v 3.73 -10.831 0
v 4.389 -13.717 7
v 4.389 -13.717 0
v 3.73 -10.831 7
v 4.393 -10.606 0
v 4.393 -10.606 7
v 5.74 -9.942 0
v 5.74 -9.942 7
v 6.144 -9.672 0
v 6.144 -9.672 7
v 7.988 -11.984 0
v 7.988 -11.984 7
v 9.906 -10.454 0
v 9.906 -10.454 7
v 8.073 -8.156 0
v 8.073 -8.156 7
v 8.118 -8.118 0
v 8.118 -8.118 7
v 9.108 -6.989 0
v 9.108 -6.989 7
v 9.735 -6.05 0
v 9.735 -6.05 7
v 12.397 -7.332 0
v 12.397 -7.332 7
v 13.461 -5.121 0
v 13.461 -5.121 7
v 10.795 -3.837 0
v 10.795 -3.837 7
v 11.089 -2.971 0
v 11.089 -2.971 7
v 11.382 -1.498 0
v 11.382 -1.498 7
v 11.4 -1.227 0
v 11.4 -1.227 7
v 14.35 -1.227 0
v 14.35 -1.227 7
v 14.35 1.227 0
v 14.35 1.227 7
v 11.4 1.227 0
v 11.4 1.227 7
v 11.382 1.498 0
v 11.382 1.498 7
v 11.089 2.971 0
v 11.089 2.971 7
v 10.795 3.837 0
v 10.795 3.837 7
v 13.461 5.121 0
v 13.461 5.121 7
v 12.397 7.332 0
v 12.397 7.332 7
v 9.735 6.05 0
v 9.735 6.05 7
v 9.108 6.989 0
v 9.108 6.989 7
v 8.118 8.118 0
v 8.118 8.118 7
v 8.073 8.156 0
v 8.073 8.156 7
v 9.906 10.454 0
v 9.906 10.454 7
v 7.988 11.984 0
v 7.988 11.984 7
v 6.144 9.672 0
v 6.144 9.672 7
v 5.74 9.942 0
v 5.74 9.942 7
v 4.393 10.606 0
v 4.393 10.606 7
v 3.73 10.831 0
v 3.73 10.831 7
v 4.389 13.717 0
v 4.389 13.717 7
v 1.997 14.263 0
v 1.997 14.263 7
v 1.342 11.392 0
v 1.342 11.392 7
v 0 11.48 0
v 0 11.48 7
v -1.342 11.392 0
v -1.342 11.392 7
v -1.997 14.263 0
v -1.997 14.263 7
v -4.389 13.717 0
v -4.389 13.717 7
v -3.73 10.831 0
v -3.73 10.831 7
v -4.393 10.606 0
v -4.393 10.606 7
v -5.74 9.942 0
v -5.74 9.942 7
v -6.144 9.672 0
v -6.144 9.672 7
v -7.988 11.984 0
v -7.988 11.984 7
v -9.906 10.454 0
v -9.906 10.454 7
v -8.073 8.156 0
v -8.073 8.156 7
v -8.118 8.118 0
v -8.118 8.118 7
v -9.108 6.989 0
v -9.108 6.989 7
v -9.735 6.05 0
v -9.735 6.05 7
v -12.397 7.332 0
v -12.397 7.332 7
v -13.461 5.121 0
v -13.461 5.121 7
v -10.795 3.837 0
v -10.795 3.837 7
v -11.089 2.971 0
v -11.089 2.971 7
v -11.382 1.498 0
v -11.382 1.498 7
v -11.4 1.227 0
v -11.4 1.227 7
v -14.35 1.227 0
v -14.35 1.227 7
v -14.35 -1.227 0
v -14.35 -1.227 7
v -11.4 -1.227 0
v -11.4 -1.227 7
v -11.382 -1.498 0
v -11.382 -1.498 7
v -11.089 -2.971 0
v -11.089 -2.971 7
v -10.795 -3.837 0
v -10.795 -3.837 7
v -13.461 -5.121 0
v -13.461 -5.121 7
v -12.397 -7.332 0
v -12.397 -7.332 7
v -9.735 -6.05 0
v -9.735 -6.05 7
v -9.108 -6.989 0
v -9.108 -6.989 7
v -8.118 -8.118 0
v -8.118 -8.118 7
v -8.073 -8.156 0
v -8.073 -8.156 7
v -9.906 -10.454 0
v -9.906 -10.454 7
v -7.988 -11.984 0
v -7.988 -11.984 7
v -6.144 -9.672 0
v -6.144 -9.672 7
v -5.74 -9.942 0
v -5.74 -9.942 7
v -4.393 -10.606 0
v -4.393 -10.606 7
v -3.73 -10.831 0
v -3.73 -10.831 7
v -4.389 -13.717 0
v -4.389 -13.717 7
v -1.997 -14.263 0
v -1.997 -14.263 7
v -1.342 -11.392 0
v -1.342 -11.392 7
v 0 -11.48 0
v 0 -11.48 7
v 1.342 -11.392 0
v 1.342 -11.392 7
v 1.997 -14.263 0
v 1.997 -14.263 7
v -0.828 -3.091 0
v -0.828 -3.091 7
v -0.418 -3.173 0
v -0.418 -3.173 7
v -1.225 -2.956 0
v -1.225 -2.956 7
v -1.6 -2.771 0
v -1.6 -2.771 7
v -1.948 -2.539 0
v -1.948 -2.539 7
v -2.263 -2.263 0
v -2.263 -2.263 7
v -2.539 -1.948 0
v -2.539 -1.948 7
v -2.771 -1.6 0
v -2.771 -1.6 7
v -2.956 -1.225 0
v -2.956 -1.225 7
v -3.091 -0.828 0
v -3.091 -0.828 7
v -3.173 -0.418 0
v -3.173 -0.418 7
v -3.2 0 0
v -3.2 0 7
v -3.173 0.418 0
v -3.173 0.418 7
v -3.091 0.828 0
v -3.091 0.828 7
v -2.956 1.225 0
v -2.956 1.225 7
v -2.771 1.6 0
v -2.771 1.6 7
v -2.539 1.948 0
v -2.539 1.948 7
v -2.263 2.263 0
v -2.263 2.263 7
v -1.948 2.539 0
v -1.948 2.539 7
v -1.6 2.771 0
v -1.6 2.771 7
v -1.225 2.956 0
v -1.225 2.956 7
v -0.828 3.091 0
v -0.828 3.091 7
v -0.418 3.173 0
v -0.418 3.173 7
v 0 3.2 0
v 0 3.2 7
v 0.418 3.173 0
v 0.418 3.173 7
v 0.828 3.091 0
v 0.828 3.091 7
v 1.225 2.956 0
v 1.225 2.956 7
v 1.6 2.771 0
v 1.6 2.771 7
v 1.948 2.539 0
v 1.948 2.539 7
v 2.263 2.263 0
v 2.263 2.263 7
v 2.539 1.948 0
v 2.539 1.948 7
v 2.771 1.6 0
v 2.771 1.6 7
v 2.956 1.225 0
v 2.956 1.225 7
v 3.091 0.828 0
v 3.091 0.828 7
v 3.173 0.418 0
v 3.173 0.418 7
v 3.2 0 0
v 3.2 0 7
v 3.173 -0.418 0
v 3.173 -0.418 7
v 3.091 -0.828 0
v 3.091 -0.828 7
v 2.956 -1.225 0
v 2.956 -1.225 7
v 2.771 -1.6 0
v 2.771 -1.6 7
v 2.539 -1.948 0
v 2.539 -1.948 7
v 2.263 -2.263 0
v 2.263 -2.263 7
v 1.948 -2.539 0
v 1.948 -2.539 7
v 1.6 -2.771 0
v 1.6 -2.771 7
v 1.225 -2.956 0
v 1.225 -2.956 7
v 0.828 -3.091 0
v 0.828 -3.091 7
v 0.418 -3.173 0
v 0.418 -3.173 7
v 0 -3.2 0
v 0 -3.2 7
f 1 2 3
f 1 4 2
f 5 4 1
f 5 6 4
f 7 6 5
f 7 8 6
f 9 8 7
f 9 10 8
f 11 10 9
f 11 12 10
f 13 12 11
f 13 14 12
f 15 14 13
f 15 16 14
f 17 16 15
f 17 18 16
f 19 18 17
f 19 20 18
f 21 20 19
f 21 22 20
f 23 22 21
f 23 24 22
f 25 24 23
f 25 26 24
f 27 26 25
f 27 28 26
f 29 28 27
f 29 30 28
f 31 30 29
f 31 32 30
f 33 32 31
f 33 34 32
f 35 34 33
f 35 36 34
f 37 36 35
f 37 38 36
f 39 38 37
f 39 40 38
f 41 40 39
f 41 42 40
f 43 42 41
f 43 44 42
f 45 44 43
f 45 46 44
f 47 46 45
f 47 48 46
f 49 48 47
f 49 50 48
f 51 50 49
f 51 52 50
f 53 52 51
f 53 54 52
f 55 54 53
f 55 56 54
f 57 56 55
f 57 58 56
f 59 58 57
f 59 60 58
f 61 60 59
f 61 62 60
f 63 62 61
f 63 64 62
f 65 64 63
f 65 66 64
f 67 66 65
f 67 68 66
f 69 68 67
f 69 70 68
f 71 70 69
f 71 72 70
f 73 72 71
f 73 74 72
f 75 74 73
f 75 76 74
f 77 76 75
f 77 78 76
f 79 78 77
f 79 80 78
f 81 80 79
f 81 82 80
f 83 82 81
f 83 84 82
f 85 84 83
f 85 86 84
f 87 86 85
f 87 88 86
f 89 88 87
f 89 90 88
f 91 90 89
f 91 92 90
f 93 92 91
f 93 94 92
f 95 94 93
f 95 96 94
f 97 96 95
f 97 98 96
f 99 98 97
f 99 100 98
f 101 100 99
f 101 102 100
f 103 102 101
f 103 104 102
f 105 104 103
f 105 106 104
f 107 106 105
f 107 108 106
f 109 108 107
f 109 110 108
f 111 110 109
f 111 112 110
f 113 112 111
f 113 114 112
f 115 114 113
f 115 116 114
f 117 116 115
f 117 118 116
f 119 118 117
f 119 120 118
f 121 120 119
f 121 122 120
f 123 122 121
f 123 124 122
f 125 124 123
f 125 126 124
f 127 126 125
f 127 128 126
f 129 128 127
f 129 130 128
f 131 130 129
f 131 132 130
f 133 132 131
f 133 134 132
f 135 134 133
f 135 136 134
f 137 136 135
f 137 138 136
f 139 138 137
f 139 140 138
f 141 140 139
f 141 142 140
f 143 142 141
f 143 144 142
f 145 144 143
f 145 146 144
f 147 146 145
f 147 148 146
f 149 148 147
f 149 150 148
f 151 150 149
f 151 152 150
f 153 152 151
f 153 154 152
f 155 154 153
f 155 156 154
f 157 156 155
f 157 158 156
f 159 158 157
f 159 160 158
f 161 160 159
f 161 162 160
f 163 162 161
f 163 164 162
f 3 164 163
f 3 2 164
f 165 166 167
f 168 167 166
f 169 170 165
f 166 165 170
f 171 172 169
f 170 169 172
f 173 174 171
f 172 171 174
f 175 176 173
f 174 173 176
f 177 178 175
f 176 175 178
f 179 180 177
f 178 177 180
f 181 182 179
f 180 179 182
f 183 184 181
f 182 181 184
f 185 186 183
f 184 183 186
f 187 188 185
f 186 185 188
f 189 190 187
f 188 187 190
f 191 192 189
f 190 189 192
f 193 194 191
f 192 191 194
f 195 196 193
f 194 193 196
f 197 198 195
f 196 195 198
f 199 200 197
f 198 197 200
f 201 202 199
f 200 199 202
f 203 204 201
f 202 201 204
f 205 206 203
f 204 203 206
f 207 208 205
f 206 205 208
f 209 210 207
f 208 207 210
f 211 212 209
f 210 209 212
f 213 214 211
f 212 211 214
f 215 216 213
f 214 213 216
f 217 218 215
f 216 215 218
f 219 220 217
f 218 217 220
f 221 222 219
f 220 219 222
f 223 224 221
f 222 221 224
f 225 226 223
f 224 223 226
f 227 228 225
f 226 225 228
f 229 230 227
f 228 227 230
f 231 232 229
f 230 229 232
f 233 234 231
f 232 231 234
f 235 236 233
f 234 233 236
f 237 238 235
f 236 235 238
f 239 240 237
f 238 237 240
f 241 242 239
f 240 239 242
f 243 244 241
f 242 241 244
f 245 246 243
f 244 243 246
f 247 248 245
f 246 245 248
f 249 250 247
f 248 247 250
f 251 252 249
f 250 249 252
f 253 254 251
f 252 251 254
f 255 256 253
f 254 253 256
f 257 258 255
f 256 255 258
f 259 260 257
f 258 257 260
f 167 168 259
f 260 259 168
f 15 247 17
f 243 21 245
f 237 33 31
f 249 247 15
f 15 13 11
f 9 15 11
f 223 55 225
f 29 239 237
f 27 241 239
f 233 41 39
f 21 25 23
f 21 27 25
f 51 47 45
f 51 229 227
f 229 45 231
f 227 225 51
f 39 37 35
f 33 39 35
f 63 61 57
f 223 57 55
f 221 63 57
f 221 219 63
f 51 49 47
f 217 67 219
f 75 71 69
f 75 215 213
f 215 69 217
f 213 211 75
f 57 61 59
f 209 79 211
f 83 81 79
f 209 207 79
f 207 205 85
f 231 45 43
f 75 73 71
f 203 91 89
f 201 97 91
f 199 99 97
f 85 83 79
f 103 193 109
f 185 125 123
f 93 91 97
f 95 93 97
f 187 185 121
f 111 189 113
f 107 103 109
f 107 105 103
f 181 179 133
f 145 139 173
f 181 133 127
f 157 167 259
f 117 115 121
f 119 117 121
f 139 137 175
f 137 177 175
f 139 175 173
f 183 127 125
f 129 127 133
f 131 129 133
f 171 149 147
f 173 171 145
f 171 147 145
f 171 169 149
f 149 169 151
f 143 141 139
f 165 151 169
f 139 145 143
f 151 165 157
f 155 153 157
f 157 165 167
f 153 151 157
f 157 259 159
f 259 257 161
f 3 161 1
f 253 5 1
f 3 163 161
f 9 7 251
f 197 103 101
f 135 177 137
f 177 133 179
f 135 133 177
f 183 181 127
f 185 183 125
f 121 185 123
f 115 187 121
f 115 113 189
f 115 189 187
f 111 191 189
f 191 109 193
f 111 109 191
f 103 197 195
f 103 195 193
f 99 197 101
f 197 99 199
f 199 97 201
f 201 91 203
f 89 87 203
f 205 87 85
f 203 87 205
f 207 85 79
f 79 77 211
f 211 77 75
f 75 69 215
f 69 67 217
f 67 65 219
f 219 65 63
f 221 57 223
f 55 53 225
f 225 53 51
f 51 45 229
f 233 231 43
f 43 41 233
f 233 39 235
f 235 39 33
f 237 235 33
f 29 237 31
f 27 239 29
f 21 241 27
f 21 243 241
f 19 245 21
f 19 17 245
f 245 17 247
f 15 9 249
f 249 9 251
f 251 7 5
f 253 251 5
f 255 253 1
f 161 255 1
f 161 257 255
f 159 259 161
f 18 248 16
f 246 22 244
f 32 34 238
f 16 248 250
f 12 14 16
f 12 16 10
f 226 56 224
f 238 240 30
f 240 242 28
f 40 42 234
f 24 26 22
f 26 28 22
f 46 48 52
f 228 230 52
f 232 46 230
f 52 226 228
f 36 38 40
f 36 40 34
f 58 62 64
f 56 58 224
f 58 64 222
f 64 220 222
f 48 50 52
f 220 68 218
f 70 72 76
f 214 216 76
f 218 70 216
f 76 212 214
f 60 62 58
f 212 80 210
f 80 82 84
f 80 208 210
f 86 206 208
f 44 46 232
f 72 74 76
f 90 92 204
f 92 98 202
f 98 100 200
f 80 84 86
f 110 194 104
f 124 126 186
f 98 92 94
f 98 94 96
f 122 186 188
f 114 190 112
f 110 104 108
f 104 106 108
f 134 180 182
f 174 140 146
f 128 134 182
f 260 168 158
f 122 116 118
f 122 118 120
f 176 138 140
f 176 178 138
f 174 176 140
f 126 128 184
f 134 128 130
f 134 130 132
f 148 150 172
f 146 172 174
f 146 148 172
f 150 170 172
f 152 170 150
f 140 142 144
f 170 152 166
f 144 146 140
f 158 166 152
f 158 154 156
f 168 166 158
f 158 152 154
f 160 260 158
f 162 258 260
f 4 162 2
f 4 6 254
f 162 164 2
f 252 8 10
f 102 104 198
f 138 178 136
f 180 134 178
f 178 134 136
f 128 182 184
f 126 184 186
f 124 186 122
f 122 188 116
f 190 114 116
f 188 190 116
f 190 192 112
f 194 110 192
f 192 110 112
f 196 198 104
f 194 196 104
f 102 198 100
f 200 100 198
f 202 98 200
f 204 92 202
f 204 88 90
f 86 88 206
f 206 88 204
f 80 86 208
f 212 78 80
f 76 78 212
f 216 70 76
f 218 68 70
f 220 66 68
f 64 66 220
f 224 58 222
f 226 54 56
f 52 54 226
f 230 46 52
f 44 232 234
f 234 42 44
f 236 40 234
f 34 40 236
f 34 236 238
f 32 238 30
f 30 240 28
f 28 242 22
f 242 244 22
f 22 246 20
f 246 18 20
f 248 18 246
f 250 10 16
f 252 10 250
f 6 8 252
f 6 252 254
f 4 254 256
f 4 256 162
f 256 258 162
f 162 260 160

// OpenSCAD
// ============================================================================
// Get Me An Alt — Parametric OpenSCAD Module
// Part: PRT-09 — Rotary Drip Flow Restrictor Wheel (flow-wheel)
// Function: Pinch-regulates water flow through the 6mm silicone tube.
// Target Bounding Box (mm): [28.69, 28.8, 7]
// Print Material: PLA | Min Wall: >= 1.6mm | Tolerance: 0.2mm
// ============================================================================
$fn = 48;
part_width = 28.69;
part_depth = 28.8;
part_height = 7;
wall_thickness = 7;
floor_thickness = 7;
corner_radius = 4;
tolerance = 0.2;
m3_clearance_d = 3.4; // M3 screw clearance hole (3.0mm + 2*0.2mm)

module rounded_rect_prism(w, d, h, r) {
  cr = max(0.5, min(r, min(w, d) / 2 - 0.1));
  linear_extrude(height = h)
    offset(r = cr)
      offset(r = -cr)
        square([w, d], center = true);
}

module part_flow_wheel() {
  teeth = 14;
  outer_r = 14.35;
  root_r = 11.48;
  tooth_w = (2 * 3.14159 * root_r) / (teeth * 2.1);
  linear_extrude(height = part_height)
    difference() {
      union() {
        circle(r = root_r);
        for (i = [0 : teeth - 1]) {
          rotate([0, 0, i * 360 / teeth])
            translate([root_r - 0.5, -tooth_w / 2])
              square([outer_r - root_r + 0.5, tooth_w]);
        }
      }
      circle(r = 3 + tolerance);
    }
}

part_flow_wheel();
